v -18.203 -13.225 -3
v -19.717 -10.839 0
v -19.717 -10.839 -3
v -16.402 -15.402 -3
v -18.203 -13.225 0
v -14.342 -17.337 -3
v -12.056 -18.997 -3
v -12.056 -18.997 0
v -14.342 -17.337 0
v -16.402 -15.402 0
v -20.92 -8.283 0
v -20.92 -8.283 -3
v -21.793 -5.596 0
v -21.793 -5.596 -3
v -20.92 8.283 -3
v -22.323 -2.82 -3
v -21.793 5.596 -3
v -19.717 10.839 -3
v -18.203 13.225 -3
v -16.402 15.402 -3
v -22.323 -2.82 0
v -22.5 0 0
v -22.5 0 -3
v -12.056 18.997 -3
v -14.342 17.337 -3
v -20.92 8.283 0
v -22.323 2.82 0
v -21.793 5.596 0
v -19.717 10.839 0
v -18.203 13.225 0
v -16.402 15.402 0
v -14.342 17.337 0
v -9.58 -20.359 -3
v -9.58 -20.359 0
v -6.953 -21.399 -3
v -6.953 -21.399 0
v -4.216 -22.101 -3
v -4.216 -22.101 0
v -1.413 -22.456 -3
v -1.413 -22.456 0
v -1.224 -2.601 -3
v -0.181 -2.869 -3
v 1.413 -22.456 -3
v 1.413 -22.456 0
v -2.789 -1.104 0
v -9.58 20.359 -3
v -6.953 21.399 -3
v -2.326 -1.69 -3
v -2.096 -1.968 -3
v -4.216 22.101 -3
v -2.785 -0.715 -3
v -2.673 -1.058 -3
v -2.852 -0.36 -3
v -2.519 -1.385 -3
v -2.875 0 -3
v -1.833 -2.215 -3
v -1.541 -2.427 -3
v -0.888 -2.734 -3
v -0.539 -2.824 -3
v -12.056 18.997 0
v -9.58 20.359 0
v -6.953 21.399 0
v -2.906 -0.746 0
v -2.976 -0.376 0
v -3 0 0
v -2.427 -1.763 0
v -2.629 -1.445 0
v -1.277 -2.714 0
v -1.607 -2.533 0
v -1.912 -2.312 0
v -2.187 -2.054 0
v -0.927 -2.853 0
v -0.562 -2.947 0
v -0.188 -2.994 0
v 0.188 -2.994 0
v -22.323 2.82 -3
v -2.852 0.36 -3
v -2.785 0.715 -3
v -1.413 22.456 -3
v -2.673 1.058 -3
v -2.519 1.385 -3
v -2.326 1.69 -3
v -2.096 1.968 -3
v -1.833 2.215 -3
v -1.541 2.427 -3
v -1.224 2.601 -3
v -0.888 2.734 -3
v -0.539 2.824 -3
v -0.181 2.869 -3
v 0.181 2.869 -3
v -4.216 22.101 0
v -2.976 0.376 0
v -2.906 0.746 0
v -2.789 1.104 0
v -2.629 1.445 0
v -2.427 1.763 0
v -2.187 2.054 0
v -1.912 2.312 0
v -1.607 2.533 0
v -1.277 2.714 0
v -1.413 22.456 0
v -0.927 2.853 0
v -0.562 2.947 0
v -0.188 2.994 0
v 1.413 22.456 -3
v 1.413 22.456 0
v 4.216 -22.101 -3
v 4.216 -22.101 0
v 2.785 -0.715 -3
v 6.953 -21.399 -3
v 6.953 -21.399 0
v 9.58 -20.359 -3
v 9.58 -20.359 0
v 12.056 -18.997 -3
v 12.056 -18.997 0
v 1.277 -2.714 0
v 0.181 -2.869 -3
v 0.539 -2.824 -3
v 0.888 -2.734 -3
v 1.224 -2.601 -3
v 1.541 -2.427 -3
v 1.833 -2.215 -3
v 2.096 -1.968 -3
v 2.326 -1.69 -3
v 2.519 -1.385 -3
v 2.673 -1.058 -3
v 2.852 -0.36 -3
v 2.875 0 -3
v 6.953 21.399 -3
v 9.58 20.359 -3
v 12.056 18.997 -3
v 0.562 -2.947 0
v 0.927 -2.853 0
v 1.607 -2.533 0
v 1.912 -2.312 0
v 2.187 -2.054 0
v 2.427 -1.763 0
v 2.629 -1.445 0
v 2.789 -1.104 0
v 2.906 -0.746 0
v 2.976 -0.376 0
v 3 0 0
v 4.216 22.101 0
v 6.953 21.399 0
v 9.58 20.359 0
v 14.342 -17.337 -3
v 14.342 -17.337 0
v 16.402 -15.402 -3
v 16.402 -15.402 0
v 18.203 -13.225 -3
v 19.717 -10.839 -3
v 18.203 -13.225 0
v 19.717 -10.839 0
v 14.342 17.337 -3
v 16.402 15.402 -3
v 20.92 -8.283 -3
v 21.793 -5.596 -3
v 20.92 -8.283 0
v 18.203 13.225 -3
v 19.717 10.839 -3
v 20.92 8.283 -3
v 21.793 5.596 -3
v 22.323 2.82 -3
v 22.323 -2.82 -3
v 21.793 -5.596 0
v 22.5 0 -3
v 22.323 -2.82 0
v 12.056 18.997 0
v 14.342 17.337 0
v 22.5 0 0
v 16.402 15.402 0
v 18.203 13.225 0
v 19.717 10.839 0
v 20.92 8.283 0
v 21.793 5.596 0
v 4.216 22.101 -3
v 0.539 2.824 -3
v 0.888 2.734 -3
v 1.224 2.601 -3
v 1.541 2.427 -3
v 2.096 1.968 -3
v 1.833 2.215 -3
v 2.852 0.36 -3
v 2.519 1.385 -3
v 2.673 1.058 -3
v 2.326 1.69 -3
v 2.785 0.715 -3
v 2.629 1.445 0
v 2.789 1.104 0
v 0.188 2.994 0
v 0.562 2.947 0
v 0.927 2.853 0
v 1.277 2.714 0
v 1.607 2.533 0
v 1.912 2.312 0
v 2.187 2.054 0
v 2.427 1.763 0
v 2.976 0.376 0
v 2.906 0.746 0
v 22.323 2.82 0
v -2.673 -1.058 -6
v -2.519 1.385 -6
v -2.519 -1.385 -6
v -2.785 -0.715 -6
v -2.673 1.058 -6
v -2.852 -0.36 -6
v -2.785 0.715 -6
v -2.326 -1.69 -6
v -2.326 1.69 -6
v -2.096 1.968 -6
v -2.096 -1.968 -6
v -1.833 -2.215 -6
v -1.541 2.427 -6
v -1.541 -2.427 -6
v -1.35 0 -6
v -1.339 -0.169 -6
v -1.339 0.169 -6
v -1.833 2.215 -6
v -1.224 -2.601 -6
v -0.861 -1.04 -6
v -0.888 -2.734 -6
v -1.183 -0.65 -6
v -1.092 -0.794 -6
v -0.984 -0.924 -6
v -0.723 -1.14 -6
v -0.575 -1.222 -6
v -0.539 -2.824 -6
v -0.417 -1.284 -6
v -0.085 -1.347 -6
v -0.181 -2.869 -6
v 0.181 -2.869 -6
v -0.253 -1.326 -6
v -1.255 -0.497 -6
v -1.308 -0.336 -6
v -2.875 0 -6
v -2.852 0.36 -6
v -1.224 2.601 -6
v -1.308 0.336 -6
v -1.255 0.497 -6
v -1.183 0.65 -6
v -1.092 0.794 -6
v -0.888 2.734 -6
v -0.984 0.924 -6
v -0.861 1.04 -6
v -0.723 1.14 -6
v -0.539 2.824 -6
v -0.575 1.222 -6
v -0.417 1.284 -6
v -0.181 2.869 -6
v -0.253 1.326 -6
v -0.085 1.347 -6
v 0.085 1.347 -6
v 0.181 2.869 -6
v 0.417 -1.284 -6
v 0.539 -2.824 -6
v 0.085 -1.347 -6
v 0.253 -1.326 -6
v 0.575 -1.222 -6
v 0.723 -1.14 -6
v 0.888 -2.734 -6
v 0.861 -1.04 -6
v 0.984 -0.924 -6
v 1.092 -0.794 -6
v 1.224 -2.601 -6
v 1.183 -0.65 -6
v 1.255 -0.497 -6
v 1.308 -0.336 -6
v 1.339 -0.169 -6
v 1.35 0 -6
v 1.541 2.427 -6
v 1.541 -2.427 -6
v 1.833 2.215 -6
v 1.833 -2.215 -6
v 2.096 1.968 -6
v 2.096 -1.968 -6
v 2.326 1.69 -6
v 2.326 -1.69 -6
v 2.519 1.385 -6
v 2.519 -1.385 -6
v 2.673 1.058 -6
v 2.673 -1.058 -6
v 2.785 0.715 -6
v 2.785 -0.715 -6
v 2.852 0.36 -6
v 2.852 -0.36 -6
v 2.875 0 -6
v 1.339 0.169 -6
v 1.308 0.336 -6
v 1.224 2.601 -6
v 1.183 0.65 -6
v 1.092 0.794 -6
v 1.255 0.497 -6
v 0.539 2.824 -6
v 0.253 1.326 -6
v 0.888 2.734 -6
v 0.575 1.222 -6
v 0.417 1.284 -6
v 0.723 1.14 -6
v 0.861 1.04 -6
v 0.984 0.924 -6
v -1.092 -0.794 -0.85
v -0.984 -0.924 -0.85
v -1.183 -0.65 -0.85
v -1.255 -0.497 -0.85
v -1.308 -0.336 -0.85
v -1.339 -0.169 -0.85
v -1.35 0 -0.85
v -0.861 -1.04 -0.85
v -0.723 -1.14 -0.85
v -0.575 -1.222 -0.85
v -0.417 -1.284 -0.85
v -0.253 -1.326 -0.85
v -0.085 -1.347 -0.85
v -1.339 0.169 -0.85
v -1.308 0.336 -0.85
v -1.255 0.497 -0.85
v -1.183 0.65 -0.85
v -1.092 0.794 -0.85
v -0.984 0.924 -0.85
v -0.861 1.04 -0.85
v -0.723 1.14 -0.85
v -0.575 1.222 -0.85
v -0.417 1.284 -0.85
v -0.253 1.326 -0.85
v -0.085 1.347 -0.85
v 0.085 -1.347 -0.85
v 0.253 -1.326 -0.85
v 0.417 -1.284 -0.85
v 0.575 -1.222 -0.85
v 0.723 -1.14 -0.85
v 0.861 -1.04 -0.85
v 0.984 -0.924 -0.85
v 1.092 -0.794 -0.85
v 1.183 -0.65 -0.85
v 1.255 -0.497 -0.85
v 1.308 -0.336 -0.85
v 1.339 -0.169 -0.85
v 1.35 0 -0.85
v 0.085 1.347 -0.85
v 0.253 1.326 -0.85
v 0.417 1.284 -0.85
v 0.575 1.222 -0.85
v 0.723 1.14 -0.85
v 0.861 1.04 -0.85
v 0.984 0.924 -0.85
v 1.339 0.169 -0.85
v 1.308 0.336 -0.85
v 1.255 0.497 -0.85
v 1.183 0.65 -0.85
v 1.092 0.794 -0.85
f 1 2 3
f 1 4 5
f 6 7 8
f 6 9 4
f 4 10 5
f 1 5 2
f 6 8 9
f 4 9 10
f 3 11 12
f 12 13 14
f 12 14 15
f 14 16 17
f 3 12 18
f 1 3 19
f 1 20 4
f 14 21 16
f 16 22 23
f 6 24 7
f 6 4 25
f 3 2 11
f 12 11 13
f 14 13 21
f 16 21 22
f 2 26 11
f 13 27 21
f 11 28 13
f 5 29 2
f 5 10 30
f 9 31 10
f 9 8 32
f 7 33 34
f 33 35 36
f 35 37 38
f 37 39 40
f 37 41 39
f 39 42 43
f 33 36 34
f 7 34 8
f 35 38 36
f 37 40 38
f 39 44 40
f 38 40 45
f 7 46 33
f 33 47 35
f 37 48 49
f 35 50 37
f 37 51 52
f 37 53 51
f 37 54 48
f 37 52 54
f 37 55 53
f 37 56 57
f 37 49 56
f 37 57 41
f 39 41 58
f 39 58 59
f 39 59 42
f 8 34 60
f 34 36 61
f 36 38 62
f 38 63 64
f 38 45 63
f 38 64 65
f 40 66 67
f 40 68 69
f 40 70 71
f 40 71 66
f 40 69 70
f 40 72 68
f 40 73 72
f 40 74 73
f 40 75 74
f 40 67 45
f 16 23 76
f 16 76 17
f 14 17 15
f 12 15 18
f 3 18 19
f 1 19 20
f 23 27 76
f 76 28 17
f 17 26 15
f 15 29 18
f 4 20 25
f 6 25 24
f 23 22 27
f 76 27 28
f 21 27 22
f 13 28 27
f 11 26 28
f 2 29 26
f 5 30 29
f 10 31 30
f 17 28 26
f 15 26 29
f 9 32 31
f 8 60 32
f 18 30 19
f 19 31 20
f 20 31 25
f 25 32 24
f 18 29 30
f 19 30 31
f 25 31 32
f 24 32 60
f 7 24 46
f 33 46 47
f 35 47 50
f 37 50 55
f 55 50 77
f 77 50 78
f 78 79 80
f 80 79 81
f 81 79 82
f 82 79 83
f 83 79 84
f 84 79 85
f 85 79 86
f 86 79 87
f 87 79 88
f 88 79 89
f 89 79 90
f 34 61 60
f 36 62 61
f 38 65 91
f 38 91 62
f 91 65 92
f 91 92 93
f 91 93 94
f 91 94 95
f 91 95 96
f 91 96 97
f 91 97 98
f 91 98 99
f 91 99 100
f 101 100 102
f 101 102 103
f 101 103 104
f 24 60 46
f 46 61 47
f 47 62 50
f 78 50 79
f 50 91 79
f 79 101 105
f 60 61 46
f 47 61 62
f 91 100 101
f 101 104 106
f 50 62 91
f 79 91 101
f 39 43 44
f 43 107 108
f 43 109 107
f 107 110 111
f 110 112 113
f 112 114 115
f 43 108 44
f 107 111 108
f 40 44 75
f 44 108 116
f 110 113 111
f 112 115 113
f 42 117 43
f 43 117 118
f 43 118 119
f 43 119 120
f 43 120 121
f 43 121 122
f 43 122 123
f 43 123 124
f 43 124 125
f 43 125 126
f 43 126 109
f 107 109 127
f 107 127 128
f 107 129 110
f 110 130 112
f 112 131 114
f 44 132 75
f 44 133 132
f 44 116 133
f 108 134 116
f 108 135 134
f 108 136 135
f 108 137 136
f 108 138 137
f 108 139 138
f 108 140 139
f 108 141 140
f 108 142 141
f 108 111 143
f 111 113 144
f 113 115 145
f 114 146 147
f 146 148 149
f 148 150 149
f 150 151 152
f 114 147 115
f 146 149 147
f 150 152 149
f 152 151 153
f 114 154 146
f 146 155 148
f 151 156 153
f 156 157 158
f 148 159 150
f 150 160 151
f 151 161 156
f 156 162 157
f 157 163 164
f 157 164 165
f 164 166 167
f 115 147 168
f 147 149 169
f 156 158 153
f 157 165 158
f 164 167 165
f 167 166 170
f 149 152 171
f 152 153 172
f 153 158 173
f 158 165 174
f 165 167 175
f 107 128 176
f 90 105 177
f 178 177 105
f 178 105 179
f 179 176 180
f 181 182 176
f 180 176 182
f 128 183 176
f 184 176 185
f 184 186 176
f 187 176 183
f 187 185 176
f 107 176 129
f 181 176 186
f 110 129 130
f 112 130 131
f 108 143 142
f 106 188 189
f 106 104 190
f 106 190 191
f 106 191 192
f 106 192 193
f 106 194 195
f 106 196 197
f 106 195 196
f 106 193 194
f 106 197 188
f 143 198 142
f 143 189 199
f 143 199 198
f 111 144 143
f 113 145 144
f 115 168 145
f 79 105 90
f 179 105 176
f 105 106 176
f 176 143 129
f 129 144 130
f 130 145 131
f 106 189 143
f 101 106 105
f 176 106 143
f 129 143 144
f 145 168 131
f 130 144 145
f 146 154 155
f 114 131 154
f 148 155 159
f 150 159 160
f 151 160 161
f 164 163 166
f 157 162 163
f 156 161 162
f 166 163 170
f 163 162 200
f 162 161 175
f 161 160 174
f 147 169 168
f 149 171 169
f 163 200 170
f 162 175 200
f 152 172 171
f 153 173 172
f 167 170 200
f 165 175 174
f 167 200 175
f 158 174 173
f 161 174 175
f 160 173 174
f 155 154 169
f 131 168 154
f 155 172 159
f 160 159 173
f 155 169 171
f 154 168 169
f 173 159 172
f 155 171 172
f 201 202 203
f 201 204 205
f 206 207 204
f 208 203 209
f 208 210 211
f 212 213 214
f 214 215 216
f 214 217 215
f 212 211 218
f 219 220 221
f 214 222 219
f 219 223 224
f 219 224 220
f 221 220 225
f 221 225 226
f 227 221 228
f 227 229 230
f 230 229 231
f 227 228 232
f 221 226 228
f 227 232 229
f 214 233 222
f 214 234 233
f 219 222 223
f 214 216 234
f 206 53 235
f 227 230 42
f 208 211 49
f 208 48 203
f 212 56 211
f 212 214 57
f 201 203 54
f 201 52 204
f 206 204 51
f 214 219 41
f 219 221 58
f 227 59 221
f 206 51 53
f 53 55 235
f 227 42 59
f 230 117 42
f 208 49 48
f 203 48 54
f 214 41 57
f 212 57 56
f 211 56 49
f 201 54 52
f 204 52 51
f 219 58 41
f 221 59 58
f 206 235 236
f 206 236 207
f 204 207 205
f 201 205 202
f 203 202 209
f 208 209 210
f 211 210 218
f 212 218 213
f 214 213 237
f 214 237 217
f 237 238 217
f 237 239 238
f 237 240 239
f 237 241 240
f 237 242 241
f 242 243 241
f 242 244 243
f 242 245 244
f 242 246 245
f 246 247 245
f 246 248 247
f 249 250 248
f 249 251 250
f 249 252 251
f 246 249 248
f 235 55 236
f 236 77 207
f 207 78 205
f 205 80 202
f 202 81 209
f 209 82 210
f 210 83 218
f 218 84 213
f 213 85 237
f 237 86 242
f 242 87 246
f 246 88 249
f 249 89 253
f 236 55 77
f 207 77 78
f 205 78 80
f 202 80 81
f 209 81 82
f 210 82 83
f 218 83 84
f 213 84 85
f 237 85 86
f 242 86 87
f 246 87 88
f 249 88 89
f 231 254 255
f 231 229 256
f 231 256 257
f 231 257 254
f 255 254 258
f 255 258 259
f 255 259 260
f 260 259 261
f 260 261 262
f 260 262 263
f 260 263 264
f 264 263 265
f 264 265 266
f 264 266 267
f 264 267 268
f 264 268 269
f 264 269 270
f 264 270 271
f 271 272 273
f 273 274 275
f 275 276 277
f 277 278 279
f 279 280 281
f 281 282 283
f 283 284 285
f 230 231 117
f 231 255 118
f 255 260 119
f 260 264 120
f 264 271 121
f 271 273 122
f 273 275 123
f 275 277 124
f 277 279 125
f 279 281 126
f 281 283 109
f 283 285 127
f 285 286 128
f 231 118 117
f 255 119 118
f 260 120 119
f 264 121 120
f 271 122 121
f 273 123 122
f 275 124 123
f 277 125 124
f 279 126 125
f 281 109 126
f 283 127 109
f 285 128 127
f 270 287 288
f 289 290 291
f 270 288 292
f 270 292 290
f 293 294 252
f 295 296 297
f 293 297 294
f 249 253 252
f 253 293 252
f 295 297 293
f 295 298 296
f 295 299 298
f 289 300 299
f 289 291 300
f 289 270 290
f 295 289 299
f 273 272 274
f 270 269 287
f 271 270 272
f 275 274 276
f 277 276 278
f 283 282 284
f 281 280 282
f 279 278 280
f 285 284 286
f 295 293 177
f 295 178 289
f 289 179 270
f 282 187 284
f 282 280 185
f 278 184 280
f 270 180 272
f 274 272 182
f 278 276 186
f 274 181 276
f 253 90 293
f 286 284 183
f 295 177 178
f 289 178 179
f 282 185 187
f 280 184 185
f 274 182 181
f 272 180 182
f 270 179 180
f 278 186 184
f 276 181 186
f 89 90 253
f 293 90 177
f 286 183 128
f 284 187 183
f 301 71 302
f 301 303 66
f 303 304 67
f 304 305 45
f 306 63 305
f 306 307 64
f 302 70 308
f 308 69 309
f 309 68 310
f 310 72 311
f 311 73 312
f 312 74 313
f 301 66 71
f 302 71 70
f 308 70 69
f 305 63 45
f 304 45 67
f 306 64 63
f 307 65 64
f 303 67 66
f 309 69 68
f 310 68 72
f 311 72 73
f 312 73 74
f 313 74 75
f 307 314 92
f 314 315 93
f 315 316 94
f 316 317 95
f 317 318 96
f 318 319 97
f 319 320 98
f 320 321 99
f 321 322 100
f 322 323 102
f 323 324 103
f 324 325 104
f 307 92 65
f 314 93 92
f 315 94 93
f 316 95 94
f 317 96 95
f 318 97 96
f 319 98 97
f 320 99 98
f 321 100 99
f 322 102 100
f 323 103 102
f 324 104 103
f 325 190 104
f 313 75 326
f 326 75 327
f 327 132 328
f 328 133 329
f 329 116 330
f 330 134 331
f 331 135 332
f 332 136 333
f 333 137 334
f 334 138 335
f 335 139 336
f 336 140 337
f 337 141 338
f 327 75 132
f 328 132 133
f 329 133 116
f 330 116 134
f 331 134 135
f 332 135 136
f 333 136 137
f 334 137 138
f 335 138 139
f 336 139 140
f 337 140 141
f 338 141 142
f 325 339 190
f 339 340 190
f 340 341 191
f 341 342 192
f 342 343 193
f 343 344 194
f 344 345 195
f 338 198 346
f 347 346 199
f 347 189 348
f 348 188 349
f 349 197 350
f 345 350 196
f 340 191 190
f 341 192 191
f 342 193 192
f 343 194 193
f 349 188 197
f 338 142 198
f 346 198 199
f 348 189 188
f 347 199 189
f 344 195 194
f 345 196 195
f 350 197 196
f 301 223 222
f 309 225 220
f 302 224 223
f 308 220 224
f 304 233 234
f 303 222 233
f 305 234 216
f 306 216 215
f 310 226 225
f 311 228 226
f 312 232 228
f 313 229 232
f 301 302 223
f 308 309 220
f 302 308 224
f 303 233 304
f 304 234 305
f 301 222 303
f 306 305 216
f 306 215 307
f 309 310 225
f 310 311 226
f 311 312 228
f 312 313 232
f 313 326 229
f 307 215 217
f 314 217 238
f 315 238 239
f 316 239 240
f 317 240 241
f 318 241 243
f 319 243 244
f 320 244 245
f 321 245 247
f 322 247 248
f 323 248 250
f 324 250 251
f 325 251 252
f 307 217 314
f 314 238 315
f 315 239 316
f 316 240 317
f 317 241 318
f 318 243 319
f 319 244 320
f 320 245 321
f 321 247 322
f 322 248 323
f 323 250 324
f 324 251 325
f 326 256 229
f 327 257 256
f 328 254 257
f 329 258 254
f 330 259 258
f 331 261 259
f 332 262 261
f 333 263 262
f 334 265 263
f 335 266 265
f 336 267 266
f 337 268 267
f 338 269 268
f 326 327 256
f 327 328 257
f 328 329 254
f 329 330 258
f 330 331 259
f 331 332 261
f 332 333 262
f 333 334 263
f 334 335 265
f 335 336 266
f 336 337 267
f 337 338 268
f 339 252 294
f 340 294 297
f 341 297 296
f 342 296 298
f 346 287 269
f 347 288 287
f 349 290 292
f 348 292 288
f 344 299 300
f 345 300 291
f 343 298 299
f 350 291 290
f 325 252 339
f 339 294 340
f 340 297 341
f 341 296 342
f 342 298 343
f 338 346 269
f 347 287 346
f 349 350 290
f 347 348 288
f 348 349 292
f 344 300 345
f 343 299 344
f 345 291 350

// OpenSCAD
$fn = 50;

difference() {
	union() {
		translate(v = [0, 0, -3.0]) {
			cylinder(h = 3, r = 22.5);
		}
		#translate(v = [0, 0, -6.0]) {
			cylinder(h = 6, r = 2.875);
		}
	}
	union() {
		translate(v = [0, 0, 0]) {
			rotate(a = [0, 0, 0]) {
				difference() {
					union() {
						translate(v = [0, 0, -6.0]) {
							cylinder(h = 6, r = 1.0);
						}
						translate(v = [0, 0, -0.85]) {
							cylinder(h = 0.85, r1 = 1.35, r2 = 3.0);
						}
						translate(v = [0, 0, -6.0]) {
							cylinder(h = 6, r = 1.35);
						}
						translate(v = [0, 0, -6.0]) {
							cylinder(h = 6, r = 1.0);
						}
					}
					union();
				}
			}
		}
	}
}
